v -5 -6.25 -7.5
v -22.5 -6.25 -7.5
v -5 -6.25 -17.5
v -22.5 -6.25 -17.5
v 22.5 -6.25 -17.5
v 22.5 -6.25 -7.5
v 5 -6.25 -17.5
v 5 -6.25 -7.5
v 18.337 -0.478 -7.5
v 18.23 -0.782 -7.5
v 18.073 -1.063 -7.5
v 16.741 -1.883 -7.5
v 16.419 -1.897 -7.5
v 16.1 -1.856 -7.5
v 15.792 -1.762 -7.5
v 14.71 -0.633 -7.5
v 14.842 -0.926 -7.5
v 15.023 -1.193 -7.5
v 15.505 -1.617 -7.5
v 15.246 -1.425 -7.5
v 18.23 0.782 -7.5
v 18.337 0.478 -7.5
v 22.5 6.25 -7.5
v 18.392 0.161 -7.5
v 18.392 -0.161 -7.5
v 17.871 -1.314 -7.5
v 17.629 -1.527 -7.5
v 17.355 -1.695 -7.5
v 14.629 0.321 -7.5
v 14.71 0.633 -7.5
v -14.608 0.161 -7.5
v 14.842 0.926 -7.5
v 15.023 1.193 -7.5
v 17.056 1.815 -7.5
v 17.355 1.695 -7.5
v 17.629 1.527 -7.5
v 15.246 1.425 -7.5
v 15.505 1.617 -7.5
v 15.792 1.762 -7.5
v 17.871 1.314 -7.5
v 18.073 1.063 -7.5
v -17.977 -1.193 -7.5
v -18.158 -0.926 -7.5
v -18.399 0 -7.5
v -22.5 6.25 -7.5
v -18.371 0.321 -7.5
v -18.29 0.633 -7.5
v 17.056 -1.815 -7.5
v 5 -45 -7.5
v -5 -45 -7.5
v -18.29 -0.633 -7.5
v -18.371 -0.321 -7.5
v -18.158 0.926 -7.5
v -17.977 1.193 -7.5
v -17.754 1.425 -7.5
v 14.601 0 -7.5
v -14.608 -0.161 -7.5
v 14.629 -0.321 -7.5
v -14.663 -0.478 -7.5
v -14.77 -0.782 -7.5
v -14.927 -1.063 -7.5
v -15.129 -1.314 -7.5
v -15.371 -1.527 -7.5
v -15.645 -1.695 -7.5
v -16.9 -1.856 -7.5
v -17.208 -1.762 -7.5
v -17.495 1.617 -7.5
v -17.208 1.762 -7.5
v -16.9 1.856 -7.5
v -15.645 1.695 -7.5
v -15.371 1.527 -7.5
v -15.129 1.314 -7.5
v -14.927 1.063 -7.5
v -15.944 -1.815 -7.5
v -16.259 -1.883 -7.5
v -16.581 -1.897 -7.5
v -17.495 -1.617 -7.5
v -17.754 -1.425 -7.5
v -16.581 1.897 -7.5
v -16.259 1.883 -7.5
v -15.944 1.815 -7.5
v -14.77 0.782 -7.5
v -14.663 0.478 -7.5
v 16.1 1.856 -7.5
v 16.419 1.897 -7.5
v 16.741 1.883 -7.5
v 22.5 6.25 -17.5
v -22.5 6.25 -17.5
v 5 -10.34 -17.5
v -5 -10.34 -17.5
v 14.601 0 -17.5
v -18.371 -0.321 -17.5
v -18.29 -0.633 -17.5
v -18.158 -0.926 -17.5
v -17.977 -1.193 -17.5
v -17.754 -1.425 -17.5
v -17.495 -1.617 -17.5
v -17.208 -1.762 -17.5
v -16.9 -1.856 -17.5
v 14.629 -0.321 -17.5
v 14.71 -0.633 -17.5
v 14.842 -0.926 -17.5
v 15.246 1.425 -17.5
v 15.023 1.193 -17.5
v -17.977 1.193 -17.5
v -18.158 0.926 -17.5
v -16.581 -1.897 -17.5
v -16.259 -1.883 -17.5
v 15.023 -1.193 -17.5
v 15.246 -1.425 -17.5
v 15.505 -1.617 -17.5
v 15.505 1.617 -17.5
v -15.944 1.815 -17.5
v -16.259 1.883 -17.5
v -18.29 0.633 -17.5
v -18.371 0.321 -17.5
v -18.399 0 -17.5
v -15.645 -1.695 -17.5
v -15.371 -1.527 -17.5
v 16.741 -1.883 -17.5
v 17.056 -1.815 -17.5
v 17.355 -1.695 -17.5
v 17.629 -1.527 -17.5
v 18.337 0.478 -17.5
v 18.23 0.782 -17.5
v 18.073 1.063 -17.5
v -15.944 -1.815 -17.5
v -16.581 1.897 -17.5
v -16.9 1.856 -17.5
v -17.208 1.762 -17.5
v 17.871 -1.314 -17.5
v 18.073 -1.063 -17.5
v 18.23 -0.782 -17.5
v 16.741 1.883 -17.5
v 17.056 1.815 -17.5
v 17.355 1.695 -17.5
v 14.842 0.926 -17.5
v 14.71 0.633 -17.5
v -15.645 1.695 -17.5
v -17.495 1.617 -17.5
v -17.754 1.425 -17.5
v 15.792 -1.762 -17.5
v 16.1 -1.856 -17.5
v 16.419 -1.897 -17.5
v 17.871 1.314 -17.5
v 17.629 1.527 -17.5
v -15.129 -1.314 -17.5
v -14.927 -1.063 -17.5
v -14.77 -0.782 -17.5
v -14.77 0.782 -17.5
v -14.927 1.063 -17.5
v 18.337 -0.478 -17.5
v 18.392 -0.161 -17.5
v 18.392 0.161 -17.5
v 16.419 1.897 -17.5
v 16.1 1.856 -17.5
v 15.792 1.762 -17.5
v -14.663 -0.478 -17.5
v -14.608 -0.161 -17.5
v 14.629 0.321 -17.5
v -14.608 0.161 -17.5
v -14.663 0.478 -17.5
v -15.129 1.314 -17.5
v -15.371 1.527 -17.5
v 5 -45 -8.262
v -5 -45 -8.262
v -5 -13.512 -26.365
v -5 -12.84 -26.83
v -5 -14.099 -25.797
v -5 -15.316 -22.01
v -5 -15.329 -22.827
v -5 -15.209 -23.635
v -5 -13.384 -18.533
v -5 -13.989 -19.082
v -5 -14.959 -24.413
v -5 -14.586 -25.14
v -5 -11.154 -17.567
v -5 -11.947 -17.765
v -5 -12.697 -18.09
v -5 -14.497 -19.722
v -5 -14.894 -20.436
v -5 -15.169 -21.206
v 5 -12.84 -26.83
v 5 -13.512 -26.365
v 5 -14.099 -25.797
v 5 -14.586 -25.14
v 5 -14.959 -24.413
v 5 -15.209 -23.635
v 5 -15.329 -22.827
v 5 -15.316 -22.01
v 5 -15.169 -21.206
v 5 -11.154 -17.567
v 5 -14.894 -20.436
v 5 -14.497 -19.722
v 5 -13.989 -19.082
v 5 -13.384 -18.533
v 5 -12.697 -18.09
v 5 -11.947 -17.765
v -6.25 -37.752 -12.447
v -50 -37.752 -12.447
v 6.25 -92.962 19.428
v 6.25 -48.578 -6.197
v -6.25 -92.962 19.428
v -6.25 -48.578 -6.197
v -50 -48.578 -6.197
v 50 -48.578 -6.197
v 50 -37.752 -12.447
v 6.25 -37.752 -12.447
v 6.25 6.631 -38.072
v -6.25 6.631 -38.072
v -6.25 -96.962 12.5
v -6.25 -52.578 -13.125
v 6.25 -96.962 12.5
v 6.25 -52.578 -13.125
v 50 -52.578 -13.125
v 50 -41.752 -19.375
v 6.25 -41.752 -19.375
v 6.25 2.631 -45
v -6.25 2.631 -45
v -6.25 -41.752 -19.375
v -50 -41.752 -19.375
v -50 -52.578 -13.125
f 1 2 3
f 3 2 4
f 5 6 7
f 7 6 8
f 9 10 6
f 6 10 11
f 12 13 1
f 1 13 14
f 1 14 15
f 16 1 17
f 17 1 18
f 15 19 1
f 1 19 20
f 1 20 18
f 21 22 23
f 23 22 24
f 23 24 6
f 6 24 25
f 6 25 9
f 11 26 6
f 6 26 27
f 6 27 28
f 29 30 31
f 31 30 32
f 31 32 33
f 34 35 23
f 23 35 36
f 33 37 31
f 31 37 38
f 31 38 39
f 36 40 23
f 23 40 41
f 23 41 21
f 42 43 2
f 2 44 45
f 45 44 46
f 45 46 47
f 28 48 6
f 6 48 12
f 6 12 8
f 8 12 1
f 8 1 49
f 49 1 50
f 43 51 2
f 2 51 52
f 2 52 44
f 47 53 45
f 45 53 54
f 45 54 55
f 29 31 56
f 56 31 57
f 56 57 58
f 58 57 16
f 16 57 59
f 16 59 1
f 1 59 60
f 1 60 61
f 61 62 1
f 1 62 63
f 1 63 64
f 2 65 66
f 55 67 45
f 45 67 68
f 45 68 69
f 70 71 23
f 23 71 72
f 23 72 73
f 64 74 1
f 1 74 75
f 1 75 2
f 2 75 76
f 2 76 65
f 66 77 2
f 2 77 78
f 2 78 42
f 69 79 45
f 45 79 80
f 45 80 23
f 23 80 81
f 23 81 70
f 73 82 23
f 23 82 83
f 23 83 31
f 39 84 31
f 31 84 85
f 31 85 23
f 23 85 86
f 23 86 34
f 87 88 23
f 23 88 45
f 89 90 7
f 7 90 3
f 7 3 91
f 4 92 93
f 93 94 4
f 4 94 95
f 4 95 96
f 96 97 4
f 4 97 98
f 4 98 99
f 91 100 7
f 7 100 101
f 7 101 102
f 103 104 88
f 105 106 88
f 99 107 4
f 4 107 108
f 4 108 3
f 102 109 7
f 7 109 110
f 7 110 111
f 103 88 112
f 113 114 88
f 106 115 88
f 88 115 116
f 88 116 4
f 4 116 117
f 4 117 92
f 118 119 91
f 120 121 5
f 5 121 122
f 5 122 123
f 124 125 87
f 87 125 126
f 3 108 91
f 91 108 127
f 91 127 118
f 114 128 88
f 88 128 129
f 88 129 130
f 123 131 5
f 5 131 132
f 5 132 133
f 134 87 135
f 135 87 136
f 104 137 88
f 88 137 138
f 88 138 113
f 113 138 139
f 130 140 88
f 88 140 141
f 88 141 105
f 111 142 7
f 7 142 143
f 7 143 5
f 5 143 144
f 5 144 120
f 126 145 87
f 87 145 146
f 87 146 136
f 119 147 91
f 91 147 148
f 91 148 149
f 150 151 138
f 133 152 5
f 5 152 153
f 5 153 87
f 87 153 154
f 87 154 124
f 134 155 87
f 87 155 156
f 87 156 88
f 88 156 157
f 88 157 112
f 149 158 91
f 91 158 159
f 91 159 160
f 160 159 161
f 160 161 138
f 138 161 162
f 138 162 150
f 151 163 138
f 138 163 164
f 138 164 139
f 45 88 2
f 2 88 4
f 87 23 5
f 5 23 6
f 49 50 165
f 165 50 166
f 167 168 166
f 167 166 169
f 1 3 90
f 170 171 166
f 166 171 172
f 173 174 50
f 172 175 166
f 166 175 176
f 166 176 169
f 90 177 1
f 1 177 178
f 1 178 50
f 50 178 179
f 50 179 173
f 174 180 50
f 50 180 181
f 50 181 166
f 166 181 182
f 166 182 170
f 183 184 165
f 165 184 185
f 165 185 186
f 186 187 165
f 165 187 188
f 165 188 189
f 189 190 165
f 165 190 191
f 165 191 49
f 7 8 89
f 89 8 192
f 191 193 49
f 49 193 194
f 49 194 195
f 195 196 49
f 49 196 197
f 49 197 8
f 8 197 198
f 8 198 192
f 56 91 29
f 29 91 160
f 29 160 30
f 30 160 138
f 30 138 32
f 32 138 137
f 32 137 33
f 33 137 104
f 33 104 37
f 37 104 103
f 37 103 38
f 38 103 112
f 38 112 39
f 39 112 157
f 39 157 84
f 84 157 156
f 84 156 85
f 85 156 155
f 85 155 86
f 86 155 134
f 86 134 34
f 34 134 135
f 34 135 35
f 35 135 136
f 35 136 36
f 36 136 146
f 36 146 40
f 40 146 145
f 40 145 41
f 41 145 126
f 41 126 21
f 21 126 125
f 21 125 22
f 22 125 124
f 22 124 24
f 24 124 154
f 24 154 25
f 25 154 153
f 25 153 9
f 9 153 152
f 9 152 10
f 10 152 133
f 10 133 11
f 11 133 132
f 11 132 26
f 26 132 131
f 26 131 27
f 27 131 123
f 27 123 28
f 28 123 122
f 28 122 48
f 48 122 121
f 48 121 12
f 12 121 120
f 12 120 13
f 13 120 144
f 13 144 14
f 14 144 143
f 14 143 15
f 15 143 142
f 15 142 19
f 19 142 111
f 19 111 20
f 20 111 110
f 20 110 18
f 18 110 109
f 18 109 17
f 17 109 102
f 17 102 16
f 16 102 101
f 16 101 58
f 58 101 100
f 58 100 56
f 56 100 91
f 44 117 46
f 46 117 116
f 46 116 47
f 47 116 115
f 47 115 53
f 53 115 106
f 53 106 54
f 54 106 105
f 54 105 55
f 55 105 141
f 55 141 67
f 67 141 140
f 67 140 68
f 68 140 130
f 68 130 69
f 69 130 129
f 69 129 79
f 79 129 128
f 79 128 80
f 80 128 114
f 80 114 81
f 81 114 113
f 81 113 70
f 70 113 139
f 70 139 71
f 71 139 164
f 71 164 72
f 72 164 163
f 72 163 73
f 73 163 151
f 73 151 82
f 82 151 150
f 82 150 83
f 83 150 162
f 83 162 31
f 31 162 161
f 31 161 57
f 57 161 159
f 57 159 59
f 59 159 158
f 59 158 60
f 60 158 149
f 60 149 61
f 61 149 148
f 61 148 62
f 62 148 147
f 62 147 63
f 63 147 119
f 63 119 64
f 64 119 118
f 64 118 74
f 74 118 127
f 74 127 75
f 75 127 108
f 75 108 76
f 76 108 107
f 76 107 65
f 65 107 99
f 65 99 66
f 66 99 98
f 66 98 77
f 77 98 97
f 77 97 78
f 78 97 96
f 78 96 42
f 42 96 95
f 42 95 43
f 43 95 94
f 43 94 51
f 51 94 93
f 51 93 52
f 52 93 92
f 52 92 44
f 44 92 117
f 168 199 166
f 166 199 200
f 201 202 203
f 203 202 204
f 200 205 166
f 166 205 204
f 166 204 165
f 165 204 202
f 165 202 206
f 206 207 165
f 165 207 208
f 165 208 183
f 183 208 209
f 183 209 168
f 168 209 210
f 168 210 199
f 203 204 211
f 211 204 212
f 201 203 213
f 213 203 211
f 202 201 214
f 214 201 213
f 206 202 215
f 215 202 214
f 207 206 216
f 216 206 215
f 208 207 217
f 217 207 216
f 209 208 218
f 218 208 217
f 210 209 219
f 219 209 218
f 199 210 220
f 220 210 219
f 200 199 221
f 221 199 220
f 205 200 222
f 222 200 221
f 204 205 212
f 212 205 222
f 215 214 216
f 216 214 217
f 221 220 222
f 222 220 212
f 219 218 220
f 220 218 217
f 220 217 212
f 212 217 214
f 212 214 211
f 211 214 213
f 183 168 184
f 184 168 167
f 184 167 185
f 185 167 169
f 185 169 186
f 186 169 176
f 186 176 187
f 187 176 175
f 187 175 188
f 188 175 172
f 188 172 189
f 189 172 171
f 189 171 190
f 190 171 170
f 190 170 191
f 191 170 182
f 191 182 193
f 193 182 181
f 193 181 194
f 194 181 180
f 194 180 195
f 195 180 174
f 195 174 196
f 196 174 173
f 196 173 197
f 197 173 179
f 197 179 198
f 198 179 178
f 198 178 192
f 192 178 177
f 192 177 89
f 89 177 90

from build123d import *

# Parameters (mm, degrees)
BOSS_EXTRUDE1_DEPTH      = 22.5
BOSS_EXTRUDE1_DEPTH_BACK = 22.5
SKETCH1_W                = 10
SKETCH1_H                = 12.5
BOSS_EXTRUDE2_DEPTH      = 5
BOSS_EXTRUDE2_DEPTH_BACK = 5
SKETCH2_W                = 10
SKETCH2_H                = 38.75
F_6_CLEARANCE_HOLE1_D    = 3.7973
BOSS_EXTRUDE5_DEPTH      = 8
FILLET2_R                = 5


with BuildPart() as part:
    # Sketch1 → Boss-Extrude1 (new, two sides: drawn at the far end of the back side and taken through both)
    with BuildSketch(Plane(origin=(0, 0, 0), x_dir=(0, 0, -1), z_dir=(1, 0, 0)).offset(-BOSS_EXTRUDE1_DEPTH_BACK)):
        with Locations((12.5, 0)):
            Rectangle(SKETCH1_W, SKETCH1_H)
    extrude(amount=BOSS_EXTRUDE1_DEPTH + BOSS_EXTRUDE1_DEPTH_BACK)

    # Sketch2 → Boss-Extrude2 (add, two sides: drawn at the far end of the back side and taken through both)
    with BuildSketch(Plane(origin=(0, 0, 0), x_dir=(0, 0, -1), z_dir=(1, 0, 0)).offset(-BOSS_EXTRUDE2_DEPTH_BACK)):
        with Locations((12.5, -25.625)):
            Rectangle(SKETCH2_W, SKETCH2_H)
    extrude(amount=BOSS_EXTRUDE2_DEPTH + BOSS_EXTRUDE2_DEPTH_BACK)

    # #6 Clearance Hole1 (through all)
    with Locations(Plane(origin=(0, 0, -17.5), x_dir=(-1, 0, 0), z_dir=(0, 0, -1))):
        with Locations((16.5, 0), (-16.5, 0)):
            Hole(F_6_CLEARANCE_HOLE1_D / 2)

    # Sketch3 → Boss-Extrude5 (add)
    with BuildSketch(Plane(origin=(0, 4.290110382, -45.957658497), x_dir=(-1, 0, 0), z_dir=(0, 0.499999999999998, 0.8660254037844398))):
        Polygon((50, 53.165316994), (50, 65.665316994), (6.25, 65.665316994), (6.25, 116.915316994), (-6.25, 116.915316994), (-6.25, 65.665316994), (-50, 65.665316994), (-50, 53.165316994), (-6.25, 53.165316994), (-6.25, 1.915316994), (6.25, 1.915316994), (6.25, 53.165316994), align=None)
    extrude(amount=BOSS_EXTRUDE5_DEPTH)

    # Fillet2
    fillet2_edges = [part.edges().sort_by_distance(p)[0] for p in [
        (0, -29, -17.5),
    ]]
    fillet(fillet2_edges, radius=FILLET2_R)


solid = part.part
